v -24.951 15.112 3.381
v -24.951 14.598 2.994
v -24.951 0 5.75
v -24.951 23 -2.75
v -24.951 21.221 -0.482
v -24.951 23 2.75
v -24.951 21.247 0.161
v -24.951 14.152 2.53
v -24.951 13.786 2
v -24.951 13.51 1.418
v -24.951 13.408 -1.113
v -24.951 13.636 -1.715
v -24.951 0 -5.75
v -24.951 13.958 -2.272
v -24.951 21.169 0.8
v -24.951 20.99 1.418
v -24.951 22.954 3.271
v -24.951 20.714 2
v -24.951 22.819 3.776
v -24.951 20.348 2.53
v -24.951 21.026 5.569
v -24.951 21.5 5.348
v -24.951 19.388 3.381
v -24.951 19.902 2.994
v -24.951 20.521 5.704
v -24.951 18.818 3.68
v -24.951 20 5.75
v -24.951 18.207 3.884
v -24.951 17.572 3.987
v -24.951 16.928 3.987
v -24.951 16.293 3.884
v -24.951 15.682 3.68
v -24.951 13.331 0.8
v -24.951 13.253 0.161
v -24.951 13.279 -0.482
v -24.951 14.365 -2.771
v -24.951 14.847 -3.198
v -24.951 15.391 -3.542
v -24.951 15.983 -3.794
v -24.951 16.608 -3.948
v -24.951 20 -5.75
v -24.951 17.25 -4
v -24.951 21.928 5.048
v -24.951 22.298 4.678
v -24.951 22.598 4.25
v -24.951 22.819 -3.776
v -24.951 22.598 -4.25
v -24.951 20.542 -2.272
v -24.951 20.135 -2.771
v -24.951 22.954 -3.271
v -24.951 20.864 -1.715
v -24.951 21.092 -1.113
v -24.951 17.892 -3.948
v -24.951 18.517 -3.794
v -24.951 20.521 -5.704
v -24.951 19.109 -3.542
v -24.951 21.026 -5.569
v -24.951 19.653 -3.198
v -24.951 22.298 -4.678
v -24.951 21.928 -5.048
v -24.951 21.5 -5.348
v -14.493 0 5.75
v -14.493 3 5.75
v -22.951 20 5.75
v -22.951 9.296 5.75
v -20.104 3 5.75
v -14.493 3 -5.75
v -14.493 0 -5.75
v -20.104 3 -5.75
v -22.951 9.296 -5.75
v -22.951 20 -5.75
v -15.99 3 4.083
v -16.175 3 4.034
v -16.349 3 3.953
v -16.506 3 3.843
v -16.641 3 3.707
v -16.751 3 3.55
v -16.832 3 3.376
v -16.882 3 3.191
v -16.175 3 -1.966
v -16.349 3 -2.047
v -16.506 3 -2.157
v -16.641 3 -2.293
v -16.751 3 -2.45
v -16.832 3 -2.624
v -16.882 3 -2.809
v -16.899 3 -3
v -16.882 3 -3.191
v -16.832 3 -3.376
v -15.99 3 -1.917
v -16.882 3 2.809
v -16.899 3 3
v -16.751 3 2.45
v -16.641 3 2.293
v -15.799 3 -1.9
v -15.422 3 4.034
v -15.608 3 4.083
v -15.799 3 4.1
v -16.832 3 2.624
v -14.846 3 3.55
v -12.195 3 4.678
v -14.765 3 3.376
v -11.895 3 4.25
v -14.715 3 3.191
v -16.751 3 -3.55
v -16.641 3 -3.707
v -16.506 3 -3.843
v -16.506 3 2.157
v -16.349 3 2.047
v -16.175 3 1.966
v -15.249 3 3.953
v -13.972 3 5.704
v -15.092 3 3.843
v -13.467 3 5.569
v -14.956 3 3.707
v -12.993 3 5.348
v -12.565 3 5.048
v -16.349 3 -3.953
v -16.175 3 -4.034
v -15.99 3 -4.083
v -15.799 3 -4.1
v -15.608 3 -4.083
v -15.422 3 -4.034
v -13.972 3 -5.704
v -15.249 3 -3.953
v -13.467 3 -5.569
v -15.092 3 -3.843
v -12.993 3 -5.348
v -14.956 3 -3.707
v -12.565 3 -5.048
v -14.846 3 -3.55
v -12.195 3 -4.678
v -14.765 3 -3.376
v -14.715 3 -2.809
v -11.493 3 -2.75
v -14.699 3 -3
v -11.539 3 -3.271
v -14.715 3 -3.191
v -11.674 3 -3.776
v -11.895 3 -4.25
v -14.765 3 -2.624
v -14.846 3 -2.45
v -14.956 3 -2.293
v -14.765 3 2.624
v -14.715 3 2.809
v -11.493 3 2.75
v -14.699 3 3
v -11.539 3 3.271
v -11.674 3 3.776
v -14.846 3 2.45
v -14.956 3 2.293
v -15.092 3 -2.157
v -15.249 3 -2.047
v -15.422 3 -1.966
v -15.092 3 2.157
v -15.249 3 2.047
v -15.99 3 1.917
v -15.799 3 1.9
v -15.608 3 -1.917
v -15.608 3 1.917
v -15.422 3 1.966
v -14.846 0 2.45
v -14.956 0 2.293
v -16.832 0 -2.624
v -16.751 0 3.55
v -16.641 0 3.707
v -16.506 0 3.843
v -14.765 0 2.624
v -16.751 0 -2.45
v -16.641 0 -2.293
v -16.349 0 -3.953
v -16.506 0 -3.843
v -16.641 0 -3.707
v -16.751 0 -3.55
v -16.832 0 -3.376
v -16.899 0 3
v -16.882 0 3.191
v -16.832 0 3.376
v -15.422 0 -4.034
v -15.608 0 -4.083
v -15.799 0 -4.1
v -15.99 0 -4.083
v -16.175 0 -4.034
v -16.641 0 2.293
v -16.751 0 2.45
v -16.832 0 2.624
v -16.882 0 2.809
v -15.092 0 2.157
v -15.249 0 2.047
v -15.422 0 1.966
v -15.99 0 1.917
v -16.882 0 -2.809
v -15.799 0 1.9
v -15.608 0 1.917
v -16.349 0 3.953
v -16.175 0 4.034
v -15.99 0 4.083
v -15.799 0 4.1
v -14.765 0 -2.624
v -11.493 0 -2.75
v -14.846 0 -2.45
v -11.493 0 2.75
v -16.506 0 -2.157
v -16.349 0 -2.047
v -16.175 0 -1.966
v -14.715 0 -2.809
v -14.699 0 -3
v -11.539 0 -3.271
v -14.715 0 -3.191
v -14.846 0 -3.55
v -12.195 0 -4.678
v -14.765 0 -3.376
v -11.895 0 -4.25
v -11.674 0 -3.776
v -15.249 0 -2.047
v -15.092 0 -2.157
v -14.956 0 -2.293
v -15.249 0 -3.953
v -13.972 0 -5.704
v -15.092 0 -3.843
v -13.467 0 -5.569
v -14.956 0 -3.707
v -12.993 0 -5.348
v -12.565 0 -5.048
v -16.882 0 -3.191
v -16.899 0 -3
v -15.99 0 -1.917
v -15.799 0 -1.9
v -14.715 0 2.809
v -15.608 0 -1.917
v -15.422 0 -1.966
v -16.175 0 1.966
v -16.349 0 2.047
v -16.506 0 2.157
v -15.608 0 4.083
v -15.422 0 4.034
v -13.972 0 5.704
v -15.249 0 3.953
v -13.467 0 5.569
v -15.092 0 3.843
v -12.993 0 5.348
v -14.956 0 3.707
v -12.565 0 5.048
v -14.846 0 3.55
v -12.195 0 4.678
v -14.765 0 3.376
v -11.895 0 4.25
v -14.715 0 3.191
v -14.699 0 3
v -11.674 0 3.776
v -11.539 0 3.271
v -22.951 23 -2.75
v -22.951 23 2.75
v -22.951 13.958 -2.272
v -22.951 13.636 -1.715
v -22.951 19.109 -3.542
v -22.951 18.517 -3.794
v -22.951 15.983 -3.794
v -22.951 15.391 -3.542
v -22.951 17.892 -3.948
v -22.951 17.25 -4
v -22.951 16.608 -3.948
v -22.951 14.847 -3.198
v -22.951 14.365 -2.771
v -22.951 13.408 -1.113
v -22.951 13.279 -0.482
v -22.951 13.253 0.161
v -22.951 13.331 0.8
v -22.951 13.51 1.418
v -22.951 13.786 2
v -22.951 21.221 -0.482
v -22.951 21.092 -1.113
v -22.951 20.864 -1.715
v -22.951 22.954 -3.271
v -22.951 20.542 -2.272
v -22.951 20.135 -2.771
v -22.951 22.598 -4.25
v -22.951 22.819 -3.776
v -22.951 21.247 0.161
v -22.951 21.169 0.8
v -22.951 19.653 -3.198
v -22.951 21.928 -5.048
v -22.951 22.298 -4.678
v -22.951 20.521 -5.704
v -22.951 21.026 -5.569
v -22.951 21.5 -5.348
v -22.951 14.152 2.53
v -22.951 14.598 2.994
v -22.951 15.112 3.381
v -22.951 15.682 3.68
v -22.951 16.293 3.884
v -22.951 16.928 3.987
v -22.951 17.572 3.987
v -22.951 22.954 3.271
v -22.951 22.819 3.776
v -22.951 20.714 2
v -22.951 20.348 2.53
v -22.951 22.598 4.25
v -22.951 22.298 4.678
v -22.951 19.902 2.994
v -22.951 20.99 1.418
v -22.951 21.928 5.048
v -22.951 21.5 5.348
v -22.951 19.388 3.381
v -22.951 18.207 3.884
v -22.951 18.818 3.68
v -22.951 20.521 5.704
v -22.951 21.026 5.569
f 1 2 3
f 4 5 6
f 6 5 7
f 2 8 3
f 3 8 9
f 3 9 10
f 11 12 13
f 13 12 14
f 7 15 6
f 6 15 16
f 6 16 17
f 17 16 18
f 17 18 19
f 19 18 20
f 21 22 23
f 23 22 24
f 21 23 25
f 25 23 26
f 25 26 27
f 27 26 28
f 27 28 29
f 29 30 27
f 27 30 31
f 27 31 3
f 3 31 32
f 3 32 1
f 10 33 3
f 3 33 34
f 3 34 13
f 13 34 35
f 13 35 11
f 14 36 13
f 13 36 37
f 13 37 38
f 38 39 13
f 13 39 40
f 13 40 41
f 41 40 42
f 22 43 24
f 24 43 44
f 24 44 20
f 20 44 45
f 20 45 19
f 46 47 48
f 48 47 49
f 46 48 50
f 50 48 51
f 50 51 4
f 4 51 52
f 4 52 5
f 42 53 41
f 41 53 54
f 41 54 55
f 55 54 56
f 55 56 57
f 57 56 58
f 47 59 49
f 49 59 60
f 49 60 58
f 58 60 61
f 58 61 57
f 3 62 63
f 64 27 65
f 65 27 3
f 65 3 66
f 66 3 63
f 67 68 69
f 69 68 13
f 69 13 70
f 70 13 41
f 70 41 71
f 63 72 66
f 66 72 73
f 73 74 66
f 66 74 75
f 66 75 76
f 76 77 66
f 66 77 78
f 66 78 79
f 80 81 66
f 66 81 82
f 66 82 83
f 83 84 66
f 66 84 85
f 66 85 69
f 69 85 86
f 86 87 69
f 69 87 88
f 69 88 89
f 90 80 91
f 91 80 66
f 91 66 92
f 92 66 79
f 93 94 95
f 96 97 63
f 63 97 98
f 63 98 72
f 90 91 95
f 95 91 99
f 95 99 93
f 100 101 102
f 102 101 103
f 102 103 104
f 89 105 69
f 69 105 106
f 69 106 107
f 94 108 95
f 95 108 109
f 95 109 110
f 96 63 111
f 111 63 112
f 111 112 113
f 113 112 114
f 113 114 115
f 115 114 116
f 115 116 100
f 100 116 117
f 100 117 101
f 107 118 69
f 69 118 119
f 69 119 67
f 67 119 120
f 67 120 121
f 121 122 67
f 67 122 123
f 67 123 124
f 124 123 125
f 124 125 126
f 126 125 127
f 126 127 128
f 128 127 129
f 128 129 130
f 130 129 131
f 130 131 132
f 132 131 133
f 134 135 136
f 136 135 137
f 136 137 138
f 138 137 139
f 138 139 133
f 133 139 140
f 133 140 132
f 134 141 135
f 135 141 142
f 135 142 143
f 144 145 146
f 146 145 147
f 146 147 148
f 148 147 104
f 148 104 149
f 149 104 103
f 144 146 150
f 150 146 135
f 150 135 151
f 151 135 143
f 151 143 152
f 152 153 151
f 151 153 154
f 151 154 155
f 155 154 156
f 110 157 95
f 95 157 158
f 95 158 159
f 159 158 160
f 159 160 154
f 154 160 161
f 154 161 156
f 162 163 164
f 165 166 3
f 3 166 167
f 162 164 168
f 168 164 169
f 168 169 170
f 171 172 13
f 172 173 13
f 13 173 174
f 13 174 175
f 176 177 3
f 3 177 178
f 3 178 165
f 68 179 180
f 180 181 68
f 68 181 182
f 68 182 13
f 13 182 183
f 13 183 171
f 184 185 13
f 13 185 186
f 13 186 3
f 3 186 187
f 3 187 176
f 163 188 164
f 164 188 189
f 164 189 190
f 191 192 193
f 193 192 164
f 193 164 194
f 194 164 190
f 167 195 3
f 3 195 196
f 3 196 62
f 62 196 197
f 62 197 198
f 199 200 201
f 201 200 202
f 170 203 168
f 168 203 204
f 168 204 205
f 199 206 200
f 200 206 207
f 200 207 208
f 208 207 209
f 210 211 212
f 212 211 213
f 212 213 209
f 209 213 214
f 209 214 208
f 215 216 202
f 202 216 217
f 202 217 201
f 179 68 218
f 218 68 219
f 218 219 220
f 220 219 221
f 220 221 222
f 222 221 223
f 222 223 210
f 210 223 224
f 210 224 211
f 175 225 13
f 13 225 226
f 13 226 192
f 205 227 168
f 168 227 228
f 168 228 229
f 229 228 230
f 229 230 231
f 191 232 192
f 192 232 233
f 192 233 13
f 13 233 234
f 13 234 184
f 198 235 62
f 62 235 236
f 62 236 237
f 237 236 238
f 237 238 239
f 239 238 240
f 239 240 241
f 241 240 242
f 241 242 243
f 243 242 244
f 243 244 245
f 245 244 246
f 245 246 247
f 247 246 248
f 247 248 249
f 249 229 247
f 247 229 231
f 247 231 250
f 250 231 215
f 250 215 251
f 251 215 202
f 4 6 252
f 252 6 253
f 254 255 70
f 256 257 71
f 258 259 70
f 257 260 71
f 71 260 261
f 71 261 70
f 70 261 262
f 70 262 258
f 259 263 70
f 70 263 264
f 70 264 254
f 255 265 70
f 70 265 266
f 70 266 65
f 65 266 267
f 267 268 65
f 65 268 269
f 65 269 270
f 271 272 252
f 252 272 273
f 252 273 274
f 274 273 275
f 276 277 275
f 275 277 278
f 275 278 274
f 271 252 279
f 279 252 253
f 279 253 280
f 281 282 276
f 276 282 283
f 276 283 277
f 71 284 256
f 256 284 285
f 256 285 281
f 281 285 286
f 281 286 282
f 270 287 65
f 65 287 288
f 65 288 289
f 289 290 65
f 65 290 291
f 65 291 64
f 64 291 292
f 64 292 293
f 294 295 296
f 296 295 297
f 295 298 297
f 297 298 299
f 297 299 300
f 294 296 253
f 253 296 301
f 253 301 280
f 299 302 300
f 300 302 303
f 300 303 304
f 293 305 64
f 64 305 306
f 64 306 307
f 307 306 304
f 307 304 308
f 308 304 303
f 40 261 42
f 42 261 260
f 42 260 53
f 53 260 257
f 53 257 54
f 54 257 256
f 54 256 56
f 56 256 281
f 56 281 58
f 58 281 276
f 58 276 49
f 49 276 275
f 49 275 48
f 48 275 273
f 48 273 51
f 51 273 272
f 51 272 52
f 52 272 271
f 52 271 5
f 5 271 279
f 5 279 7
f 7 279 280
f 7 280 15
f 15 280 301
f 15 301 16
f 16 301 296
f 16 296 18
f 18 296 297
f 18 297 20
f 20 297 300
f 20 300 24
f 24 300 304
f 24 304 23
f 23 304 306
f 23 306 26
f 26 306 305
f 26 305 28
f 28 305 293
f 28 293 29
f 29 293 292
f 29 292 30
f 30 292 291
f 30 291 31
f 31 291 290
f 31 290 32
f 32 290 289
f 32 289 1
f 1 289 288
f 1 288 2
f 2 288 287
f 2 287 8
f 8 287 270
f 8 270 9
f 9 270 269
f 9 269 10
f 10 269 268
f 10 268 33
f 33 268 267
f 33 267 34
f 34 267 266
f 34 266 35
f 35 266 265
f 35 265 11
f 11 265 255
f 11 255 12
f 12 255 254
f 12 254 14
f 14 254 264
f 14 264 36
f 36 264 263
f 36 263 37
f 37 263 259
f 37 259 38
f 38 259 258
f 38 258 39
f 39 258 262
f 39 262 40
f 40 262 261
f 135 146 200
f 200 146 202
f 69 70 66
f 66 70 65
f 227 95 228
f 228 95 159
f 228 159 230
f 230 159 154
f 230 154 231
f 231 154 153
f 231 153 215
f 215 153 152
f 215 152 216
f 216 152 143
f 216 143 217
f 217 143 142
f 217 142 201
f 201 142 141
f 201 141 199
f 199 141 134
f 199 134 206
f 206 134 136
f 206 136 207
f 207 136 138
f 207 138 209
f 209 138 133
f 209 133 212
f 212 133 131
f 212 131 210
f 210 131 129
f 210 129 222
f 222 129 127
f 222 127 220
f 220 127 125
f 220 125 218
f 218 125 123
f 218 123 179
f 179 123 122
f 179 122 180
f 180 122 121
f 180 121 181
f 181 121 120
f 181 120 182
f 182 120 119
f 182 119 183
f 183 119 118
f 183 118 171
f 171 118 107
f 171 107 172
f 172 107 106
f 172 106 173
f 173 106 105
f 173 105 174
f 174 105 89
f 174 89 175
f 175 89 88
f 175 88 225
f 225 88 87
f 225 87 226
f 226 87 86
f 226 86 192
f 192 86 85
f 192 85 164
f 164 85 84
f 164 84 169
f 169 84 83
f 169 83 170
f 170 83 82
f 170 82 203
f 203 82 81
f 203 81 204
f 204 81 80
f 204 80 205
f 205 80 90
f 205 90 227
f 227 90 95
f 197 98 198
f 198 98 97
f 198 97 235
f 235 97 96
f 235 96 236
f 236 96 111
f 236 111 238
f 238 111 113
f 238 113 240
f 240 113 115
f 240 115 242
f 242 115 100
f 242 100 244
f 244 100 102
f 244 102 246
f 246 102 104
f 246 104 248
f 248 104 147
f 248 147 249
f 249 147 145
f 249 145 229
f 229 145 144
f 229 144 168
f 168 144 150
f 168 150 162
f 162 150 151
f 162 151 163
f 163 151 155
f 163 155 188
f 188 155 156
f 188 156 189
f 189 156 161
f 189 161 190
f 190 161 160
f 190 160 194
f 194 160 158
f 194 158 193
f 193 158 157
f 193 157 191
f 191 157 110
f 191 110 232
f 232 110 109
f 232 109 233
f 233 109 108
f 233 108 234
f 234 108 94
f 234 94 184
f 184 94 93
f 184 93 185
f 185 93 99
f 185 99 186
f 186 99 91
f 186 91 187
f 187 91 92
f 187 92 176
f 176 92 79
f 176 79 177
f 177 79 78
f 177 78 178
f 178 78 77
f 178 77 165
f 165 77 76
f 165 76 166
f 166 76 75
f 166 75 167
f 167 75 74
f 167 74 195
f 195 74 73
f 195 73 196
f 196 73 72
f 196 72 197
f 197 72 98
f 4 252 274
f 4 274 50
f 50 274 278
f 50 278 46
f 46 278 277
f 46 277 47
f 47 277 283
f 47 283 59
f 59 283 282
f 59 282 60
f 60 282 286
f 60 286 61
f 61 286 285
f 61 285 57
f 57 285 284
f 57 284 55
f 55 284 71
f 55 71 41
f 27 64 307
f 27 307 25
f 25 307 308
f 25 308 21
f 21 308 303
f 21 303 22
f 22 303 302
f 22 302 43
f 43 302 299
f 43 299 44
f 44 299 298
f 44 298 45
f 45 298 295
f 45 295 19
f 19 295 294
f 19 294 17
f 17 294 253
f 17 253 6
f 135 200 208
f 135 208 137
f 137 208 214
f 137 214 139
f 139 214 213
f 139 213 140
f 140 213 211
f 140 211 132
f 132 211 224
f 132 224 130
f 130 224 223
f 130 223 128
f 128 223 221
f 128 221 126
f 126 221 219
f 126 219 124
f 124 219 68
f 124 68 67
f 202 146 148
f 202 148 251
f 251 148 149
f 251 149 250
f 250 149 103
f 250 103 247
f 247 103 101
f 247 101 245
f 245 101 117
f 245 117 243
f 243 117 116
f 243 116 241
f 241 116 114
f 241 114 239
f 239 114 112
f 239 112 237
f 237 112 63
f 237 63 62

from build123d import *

# Parameters (mm, degrees)
SKETCH_1_W          = 49.901037986
SKETCH_1_H          = 11.5
EXTRUDE_1_DEPTH     = 3
SKETCH_3_W          = 11.5
SKETCH_3_H          = 23
EXTRUDE_2_DEPTH     = 2
SKETCH_4_R          = 4
CUT_EXTRUDE_1_DEPTH = 3
SKETCH_7_W          = 44.527674248
SKETCH_7_H          = 38.163809885
CUT_EXTRUDE_2_DEPTH = 10
EXTRUDE_3_DEPTH     = 11.5
SKETCH_9_R          = 1.1
CUT_EXTRUDE_3_DEPTH = 10
FILLET_2_R          = 3
FILLET_3_R          = 3


with BuildPart() as part:
    # 草图1 → 凸台-拉伸1 (new body)
    with BuildSketch(Plane(origin=(0, 0, 0), x_dir=(1, 0, 0), z_dir=(0, 1, 0))):
        Rectangle(SKETCH_1_W, SKETCH_1_H)
    extrude(amount=EXTRUDE_1_DEPTH)

    # 草图3 → 凸台-拉伸2 (add)
    with BuildSketch(Plane.ZY.offset(24.950518993)):
        with Locations((0, 11.5)):
            Rectangle(SKETCH_3_W, SKETCH_3_H)
    extrude(amount=-EXTRUDE_2_DEPTH)

    # 草图4 → 切除-拉伸1 (cut)
    with BuildSketch(Plane(origin=(-22.950518993, 0, 0), x_dir=(0, 0, -1), z_dir=(1, 0, 0))):
        with Locations((0, 17.25)):
            Circle(SKETCH_4_R)
    extrude(amount=-CUT_EXTRUDE_1_DEPTH, mode=Mode.SUBTRACT)

    # 草图7 → 切除-拉伸2 (cut)
    with BuildSketch(Plane(origin=(0, 3, 0), x_dir=(1, 0, 0), z_dir=(0, 1, 0))):
        with Locations((10.77056276, -2.40663606)):
            Rectangle(SKETCH_7_W, SKETCH_7_H)
    extrude(amount=-CUT_EXTRUDE_2_DEPTH, mode=Mode.SUBTRACT)

    # 草图8 → 凸台-拉伸3 (add)
    with BuildSketch(Plane.XY.offset(5.75)):
        Polygon((-22.950518993, 9.295590995), (-22.950518993, 3), (-20.10387752, 3), align=None)
    extrude(amount=-EXTRUDE_3_DEPTH)

    # 草图9 → 切除-拉伸3 (cut)
    with BuildSketch(Plane(origin=(0, 3, 0), x_dir=(1, 0, 0), z_dir=(0, 1, 0))):
        with Locations(Location((-15.798575942, 3, 0), (0, 0, 270))):
            Circle(SKETCH_9_R)
        with Locations(Location((-15.798575942, -3, 0), (0, 0, 270))):
            Circle(SKETCH_9_R)
    extrude(amount=-CUT_EXTRUDE_3_DEPTH, mode=Mode.SUBTRACT)

    # 圆角2
    fillet_2_edges = [part.edges().sort_by_distance(p)[0] for p in [
        (-23.950518993, 23, -5.75),
        (-23.950518993, 23, 5.75),
    ]]
    fillet(fillet_2_edges, radius=FILLET_2_R)

    # 圆角3
    fillet_3_edges = [part.edges().sort_by_distance(p)[0] for p in [
        (-11.493274364, 1.5, 5.75),
        (-11.493274364, 1.5, -5.75),
    ]]
    fillet(fillet_3_edges, radius=FILLET_3_R)


solid = part.part
